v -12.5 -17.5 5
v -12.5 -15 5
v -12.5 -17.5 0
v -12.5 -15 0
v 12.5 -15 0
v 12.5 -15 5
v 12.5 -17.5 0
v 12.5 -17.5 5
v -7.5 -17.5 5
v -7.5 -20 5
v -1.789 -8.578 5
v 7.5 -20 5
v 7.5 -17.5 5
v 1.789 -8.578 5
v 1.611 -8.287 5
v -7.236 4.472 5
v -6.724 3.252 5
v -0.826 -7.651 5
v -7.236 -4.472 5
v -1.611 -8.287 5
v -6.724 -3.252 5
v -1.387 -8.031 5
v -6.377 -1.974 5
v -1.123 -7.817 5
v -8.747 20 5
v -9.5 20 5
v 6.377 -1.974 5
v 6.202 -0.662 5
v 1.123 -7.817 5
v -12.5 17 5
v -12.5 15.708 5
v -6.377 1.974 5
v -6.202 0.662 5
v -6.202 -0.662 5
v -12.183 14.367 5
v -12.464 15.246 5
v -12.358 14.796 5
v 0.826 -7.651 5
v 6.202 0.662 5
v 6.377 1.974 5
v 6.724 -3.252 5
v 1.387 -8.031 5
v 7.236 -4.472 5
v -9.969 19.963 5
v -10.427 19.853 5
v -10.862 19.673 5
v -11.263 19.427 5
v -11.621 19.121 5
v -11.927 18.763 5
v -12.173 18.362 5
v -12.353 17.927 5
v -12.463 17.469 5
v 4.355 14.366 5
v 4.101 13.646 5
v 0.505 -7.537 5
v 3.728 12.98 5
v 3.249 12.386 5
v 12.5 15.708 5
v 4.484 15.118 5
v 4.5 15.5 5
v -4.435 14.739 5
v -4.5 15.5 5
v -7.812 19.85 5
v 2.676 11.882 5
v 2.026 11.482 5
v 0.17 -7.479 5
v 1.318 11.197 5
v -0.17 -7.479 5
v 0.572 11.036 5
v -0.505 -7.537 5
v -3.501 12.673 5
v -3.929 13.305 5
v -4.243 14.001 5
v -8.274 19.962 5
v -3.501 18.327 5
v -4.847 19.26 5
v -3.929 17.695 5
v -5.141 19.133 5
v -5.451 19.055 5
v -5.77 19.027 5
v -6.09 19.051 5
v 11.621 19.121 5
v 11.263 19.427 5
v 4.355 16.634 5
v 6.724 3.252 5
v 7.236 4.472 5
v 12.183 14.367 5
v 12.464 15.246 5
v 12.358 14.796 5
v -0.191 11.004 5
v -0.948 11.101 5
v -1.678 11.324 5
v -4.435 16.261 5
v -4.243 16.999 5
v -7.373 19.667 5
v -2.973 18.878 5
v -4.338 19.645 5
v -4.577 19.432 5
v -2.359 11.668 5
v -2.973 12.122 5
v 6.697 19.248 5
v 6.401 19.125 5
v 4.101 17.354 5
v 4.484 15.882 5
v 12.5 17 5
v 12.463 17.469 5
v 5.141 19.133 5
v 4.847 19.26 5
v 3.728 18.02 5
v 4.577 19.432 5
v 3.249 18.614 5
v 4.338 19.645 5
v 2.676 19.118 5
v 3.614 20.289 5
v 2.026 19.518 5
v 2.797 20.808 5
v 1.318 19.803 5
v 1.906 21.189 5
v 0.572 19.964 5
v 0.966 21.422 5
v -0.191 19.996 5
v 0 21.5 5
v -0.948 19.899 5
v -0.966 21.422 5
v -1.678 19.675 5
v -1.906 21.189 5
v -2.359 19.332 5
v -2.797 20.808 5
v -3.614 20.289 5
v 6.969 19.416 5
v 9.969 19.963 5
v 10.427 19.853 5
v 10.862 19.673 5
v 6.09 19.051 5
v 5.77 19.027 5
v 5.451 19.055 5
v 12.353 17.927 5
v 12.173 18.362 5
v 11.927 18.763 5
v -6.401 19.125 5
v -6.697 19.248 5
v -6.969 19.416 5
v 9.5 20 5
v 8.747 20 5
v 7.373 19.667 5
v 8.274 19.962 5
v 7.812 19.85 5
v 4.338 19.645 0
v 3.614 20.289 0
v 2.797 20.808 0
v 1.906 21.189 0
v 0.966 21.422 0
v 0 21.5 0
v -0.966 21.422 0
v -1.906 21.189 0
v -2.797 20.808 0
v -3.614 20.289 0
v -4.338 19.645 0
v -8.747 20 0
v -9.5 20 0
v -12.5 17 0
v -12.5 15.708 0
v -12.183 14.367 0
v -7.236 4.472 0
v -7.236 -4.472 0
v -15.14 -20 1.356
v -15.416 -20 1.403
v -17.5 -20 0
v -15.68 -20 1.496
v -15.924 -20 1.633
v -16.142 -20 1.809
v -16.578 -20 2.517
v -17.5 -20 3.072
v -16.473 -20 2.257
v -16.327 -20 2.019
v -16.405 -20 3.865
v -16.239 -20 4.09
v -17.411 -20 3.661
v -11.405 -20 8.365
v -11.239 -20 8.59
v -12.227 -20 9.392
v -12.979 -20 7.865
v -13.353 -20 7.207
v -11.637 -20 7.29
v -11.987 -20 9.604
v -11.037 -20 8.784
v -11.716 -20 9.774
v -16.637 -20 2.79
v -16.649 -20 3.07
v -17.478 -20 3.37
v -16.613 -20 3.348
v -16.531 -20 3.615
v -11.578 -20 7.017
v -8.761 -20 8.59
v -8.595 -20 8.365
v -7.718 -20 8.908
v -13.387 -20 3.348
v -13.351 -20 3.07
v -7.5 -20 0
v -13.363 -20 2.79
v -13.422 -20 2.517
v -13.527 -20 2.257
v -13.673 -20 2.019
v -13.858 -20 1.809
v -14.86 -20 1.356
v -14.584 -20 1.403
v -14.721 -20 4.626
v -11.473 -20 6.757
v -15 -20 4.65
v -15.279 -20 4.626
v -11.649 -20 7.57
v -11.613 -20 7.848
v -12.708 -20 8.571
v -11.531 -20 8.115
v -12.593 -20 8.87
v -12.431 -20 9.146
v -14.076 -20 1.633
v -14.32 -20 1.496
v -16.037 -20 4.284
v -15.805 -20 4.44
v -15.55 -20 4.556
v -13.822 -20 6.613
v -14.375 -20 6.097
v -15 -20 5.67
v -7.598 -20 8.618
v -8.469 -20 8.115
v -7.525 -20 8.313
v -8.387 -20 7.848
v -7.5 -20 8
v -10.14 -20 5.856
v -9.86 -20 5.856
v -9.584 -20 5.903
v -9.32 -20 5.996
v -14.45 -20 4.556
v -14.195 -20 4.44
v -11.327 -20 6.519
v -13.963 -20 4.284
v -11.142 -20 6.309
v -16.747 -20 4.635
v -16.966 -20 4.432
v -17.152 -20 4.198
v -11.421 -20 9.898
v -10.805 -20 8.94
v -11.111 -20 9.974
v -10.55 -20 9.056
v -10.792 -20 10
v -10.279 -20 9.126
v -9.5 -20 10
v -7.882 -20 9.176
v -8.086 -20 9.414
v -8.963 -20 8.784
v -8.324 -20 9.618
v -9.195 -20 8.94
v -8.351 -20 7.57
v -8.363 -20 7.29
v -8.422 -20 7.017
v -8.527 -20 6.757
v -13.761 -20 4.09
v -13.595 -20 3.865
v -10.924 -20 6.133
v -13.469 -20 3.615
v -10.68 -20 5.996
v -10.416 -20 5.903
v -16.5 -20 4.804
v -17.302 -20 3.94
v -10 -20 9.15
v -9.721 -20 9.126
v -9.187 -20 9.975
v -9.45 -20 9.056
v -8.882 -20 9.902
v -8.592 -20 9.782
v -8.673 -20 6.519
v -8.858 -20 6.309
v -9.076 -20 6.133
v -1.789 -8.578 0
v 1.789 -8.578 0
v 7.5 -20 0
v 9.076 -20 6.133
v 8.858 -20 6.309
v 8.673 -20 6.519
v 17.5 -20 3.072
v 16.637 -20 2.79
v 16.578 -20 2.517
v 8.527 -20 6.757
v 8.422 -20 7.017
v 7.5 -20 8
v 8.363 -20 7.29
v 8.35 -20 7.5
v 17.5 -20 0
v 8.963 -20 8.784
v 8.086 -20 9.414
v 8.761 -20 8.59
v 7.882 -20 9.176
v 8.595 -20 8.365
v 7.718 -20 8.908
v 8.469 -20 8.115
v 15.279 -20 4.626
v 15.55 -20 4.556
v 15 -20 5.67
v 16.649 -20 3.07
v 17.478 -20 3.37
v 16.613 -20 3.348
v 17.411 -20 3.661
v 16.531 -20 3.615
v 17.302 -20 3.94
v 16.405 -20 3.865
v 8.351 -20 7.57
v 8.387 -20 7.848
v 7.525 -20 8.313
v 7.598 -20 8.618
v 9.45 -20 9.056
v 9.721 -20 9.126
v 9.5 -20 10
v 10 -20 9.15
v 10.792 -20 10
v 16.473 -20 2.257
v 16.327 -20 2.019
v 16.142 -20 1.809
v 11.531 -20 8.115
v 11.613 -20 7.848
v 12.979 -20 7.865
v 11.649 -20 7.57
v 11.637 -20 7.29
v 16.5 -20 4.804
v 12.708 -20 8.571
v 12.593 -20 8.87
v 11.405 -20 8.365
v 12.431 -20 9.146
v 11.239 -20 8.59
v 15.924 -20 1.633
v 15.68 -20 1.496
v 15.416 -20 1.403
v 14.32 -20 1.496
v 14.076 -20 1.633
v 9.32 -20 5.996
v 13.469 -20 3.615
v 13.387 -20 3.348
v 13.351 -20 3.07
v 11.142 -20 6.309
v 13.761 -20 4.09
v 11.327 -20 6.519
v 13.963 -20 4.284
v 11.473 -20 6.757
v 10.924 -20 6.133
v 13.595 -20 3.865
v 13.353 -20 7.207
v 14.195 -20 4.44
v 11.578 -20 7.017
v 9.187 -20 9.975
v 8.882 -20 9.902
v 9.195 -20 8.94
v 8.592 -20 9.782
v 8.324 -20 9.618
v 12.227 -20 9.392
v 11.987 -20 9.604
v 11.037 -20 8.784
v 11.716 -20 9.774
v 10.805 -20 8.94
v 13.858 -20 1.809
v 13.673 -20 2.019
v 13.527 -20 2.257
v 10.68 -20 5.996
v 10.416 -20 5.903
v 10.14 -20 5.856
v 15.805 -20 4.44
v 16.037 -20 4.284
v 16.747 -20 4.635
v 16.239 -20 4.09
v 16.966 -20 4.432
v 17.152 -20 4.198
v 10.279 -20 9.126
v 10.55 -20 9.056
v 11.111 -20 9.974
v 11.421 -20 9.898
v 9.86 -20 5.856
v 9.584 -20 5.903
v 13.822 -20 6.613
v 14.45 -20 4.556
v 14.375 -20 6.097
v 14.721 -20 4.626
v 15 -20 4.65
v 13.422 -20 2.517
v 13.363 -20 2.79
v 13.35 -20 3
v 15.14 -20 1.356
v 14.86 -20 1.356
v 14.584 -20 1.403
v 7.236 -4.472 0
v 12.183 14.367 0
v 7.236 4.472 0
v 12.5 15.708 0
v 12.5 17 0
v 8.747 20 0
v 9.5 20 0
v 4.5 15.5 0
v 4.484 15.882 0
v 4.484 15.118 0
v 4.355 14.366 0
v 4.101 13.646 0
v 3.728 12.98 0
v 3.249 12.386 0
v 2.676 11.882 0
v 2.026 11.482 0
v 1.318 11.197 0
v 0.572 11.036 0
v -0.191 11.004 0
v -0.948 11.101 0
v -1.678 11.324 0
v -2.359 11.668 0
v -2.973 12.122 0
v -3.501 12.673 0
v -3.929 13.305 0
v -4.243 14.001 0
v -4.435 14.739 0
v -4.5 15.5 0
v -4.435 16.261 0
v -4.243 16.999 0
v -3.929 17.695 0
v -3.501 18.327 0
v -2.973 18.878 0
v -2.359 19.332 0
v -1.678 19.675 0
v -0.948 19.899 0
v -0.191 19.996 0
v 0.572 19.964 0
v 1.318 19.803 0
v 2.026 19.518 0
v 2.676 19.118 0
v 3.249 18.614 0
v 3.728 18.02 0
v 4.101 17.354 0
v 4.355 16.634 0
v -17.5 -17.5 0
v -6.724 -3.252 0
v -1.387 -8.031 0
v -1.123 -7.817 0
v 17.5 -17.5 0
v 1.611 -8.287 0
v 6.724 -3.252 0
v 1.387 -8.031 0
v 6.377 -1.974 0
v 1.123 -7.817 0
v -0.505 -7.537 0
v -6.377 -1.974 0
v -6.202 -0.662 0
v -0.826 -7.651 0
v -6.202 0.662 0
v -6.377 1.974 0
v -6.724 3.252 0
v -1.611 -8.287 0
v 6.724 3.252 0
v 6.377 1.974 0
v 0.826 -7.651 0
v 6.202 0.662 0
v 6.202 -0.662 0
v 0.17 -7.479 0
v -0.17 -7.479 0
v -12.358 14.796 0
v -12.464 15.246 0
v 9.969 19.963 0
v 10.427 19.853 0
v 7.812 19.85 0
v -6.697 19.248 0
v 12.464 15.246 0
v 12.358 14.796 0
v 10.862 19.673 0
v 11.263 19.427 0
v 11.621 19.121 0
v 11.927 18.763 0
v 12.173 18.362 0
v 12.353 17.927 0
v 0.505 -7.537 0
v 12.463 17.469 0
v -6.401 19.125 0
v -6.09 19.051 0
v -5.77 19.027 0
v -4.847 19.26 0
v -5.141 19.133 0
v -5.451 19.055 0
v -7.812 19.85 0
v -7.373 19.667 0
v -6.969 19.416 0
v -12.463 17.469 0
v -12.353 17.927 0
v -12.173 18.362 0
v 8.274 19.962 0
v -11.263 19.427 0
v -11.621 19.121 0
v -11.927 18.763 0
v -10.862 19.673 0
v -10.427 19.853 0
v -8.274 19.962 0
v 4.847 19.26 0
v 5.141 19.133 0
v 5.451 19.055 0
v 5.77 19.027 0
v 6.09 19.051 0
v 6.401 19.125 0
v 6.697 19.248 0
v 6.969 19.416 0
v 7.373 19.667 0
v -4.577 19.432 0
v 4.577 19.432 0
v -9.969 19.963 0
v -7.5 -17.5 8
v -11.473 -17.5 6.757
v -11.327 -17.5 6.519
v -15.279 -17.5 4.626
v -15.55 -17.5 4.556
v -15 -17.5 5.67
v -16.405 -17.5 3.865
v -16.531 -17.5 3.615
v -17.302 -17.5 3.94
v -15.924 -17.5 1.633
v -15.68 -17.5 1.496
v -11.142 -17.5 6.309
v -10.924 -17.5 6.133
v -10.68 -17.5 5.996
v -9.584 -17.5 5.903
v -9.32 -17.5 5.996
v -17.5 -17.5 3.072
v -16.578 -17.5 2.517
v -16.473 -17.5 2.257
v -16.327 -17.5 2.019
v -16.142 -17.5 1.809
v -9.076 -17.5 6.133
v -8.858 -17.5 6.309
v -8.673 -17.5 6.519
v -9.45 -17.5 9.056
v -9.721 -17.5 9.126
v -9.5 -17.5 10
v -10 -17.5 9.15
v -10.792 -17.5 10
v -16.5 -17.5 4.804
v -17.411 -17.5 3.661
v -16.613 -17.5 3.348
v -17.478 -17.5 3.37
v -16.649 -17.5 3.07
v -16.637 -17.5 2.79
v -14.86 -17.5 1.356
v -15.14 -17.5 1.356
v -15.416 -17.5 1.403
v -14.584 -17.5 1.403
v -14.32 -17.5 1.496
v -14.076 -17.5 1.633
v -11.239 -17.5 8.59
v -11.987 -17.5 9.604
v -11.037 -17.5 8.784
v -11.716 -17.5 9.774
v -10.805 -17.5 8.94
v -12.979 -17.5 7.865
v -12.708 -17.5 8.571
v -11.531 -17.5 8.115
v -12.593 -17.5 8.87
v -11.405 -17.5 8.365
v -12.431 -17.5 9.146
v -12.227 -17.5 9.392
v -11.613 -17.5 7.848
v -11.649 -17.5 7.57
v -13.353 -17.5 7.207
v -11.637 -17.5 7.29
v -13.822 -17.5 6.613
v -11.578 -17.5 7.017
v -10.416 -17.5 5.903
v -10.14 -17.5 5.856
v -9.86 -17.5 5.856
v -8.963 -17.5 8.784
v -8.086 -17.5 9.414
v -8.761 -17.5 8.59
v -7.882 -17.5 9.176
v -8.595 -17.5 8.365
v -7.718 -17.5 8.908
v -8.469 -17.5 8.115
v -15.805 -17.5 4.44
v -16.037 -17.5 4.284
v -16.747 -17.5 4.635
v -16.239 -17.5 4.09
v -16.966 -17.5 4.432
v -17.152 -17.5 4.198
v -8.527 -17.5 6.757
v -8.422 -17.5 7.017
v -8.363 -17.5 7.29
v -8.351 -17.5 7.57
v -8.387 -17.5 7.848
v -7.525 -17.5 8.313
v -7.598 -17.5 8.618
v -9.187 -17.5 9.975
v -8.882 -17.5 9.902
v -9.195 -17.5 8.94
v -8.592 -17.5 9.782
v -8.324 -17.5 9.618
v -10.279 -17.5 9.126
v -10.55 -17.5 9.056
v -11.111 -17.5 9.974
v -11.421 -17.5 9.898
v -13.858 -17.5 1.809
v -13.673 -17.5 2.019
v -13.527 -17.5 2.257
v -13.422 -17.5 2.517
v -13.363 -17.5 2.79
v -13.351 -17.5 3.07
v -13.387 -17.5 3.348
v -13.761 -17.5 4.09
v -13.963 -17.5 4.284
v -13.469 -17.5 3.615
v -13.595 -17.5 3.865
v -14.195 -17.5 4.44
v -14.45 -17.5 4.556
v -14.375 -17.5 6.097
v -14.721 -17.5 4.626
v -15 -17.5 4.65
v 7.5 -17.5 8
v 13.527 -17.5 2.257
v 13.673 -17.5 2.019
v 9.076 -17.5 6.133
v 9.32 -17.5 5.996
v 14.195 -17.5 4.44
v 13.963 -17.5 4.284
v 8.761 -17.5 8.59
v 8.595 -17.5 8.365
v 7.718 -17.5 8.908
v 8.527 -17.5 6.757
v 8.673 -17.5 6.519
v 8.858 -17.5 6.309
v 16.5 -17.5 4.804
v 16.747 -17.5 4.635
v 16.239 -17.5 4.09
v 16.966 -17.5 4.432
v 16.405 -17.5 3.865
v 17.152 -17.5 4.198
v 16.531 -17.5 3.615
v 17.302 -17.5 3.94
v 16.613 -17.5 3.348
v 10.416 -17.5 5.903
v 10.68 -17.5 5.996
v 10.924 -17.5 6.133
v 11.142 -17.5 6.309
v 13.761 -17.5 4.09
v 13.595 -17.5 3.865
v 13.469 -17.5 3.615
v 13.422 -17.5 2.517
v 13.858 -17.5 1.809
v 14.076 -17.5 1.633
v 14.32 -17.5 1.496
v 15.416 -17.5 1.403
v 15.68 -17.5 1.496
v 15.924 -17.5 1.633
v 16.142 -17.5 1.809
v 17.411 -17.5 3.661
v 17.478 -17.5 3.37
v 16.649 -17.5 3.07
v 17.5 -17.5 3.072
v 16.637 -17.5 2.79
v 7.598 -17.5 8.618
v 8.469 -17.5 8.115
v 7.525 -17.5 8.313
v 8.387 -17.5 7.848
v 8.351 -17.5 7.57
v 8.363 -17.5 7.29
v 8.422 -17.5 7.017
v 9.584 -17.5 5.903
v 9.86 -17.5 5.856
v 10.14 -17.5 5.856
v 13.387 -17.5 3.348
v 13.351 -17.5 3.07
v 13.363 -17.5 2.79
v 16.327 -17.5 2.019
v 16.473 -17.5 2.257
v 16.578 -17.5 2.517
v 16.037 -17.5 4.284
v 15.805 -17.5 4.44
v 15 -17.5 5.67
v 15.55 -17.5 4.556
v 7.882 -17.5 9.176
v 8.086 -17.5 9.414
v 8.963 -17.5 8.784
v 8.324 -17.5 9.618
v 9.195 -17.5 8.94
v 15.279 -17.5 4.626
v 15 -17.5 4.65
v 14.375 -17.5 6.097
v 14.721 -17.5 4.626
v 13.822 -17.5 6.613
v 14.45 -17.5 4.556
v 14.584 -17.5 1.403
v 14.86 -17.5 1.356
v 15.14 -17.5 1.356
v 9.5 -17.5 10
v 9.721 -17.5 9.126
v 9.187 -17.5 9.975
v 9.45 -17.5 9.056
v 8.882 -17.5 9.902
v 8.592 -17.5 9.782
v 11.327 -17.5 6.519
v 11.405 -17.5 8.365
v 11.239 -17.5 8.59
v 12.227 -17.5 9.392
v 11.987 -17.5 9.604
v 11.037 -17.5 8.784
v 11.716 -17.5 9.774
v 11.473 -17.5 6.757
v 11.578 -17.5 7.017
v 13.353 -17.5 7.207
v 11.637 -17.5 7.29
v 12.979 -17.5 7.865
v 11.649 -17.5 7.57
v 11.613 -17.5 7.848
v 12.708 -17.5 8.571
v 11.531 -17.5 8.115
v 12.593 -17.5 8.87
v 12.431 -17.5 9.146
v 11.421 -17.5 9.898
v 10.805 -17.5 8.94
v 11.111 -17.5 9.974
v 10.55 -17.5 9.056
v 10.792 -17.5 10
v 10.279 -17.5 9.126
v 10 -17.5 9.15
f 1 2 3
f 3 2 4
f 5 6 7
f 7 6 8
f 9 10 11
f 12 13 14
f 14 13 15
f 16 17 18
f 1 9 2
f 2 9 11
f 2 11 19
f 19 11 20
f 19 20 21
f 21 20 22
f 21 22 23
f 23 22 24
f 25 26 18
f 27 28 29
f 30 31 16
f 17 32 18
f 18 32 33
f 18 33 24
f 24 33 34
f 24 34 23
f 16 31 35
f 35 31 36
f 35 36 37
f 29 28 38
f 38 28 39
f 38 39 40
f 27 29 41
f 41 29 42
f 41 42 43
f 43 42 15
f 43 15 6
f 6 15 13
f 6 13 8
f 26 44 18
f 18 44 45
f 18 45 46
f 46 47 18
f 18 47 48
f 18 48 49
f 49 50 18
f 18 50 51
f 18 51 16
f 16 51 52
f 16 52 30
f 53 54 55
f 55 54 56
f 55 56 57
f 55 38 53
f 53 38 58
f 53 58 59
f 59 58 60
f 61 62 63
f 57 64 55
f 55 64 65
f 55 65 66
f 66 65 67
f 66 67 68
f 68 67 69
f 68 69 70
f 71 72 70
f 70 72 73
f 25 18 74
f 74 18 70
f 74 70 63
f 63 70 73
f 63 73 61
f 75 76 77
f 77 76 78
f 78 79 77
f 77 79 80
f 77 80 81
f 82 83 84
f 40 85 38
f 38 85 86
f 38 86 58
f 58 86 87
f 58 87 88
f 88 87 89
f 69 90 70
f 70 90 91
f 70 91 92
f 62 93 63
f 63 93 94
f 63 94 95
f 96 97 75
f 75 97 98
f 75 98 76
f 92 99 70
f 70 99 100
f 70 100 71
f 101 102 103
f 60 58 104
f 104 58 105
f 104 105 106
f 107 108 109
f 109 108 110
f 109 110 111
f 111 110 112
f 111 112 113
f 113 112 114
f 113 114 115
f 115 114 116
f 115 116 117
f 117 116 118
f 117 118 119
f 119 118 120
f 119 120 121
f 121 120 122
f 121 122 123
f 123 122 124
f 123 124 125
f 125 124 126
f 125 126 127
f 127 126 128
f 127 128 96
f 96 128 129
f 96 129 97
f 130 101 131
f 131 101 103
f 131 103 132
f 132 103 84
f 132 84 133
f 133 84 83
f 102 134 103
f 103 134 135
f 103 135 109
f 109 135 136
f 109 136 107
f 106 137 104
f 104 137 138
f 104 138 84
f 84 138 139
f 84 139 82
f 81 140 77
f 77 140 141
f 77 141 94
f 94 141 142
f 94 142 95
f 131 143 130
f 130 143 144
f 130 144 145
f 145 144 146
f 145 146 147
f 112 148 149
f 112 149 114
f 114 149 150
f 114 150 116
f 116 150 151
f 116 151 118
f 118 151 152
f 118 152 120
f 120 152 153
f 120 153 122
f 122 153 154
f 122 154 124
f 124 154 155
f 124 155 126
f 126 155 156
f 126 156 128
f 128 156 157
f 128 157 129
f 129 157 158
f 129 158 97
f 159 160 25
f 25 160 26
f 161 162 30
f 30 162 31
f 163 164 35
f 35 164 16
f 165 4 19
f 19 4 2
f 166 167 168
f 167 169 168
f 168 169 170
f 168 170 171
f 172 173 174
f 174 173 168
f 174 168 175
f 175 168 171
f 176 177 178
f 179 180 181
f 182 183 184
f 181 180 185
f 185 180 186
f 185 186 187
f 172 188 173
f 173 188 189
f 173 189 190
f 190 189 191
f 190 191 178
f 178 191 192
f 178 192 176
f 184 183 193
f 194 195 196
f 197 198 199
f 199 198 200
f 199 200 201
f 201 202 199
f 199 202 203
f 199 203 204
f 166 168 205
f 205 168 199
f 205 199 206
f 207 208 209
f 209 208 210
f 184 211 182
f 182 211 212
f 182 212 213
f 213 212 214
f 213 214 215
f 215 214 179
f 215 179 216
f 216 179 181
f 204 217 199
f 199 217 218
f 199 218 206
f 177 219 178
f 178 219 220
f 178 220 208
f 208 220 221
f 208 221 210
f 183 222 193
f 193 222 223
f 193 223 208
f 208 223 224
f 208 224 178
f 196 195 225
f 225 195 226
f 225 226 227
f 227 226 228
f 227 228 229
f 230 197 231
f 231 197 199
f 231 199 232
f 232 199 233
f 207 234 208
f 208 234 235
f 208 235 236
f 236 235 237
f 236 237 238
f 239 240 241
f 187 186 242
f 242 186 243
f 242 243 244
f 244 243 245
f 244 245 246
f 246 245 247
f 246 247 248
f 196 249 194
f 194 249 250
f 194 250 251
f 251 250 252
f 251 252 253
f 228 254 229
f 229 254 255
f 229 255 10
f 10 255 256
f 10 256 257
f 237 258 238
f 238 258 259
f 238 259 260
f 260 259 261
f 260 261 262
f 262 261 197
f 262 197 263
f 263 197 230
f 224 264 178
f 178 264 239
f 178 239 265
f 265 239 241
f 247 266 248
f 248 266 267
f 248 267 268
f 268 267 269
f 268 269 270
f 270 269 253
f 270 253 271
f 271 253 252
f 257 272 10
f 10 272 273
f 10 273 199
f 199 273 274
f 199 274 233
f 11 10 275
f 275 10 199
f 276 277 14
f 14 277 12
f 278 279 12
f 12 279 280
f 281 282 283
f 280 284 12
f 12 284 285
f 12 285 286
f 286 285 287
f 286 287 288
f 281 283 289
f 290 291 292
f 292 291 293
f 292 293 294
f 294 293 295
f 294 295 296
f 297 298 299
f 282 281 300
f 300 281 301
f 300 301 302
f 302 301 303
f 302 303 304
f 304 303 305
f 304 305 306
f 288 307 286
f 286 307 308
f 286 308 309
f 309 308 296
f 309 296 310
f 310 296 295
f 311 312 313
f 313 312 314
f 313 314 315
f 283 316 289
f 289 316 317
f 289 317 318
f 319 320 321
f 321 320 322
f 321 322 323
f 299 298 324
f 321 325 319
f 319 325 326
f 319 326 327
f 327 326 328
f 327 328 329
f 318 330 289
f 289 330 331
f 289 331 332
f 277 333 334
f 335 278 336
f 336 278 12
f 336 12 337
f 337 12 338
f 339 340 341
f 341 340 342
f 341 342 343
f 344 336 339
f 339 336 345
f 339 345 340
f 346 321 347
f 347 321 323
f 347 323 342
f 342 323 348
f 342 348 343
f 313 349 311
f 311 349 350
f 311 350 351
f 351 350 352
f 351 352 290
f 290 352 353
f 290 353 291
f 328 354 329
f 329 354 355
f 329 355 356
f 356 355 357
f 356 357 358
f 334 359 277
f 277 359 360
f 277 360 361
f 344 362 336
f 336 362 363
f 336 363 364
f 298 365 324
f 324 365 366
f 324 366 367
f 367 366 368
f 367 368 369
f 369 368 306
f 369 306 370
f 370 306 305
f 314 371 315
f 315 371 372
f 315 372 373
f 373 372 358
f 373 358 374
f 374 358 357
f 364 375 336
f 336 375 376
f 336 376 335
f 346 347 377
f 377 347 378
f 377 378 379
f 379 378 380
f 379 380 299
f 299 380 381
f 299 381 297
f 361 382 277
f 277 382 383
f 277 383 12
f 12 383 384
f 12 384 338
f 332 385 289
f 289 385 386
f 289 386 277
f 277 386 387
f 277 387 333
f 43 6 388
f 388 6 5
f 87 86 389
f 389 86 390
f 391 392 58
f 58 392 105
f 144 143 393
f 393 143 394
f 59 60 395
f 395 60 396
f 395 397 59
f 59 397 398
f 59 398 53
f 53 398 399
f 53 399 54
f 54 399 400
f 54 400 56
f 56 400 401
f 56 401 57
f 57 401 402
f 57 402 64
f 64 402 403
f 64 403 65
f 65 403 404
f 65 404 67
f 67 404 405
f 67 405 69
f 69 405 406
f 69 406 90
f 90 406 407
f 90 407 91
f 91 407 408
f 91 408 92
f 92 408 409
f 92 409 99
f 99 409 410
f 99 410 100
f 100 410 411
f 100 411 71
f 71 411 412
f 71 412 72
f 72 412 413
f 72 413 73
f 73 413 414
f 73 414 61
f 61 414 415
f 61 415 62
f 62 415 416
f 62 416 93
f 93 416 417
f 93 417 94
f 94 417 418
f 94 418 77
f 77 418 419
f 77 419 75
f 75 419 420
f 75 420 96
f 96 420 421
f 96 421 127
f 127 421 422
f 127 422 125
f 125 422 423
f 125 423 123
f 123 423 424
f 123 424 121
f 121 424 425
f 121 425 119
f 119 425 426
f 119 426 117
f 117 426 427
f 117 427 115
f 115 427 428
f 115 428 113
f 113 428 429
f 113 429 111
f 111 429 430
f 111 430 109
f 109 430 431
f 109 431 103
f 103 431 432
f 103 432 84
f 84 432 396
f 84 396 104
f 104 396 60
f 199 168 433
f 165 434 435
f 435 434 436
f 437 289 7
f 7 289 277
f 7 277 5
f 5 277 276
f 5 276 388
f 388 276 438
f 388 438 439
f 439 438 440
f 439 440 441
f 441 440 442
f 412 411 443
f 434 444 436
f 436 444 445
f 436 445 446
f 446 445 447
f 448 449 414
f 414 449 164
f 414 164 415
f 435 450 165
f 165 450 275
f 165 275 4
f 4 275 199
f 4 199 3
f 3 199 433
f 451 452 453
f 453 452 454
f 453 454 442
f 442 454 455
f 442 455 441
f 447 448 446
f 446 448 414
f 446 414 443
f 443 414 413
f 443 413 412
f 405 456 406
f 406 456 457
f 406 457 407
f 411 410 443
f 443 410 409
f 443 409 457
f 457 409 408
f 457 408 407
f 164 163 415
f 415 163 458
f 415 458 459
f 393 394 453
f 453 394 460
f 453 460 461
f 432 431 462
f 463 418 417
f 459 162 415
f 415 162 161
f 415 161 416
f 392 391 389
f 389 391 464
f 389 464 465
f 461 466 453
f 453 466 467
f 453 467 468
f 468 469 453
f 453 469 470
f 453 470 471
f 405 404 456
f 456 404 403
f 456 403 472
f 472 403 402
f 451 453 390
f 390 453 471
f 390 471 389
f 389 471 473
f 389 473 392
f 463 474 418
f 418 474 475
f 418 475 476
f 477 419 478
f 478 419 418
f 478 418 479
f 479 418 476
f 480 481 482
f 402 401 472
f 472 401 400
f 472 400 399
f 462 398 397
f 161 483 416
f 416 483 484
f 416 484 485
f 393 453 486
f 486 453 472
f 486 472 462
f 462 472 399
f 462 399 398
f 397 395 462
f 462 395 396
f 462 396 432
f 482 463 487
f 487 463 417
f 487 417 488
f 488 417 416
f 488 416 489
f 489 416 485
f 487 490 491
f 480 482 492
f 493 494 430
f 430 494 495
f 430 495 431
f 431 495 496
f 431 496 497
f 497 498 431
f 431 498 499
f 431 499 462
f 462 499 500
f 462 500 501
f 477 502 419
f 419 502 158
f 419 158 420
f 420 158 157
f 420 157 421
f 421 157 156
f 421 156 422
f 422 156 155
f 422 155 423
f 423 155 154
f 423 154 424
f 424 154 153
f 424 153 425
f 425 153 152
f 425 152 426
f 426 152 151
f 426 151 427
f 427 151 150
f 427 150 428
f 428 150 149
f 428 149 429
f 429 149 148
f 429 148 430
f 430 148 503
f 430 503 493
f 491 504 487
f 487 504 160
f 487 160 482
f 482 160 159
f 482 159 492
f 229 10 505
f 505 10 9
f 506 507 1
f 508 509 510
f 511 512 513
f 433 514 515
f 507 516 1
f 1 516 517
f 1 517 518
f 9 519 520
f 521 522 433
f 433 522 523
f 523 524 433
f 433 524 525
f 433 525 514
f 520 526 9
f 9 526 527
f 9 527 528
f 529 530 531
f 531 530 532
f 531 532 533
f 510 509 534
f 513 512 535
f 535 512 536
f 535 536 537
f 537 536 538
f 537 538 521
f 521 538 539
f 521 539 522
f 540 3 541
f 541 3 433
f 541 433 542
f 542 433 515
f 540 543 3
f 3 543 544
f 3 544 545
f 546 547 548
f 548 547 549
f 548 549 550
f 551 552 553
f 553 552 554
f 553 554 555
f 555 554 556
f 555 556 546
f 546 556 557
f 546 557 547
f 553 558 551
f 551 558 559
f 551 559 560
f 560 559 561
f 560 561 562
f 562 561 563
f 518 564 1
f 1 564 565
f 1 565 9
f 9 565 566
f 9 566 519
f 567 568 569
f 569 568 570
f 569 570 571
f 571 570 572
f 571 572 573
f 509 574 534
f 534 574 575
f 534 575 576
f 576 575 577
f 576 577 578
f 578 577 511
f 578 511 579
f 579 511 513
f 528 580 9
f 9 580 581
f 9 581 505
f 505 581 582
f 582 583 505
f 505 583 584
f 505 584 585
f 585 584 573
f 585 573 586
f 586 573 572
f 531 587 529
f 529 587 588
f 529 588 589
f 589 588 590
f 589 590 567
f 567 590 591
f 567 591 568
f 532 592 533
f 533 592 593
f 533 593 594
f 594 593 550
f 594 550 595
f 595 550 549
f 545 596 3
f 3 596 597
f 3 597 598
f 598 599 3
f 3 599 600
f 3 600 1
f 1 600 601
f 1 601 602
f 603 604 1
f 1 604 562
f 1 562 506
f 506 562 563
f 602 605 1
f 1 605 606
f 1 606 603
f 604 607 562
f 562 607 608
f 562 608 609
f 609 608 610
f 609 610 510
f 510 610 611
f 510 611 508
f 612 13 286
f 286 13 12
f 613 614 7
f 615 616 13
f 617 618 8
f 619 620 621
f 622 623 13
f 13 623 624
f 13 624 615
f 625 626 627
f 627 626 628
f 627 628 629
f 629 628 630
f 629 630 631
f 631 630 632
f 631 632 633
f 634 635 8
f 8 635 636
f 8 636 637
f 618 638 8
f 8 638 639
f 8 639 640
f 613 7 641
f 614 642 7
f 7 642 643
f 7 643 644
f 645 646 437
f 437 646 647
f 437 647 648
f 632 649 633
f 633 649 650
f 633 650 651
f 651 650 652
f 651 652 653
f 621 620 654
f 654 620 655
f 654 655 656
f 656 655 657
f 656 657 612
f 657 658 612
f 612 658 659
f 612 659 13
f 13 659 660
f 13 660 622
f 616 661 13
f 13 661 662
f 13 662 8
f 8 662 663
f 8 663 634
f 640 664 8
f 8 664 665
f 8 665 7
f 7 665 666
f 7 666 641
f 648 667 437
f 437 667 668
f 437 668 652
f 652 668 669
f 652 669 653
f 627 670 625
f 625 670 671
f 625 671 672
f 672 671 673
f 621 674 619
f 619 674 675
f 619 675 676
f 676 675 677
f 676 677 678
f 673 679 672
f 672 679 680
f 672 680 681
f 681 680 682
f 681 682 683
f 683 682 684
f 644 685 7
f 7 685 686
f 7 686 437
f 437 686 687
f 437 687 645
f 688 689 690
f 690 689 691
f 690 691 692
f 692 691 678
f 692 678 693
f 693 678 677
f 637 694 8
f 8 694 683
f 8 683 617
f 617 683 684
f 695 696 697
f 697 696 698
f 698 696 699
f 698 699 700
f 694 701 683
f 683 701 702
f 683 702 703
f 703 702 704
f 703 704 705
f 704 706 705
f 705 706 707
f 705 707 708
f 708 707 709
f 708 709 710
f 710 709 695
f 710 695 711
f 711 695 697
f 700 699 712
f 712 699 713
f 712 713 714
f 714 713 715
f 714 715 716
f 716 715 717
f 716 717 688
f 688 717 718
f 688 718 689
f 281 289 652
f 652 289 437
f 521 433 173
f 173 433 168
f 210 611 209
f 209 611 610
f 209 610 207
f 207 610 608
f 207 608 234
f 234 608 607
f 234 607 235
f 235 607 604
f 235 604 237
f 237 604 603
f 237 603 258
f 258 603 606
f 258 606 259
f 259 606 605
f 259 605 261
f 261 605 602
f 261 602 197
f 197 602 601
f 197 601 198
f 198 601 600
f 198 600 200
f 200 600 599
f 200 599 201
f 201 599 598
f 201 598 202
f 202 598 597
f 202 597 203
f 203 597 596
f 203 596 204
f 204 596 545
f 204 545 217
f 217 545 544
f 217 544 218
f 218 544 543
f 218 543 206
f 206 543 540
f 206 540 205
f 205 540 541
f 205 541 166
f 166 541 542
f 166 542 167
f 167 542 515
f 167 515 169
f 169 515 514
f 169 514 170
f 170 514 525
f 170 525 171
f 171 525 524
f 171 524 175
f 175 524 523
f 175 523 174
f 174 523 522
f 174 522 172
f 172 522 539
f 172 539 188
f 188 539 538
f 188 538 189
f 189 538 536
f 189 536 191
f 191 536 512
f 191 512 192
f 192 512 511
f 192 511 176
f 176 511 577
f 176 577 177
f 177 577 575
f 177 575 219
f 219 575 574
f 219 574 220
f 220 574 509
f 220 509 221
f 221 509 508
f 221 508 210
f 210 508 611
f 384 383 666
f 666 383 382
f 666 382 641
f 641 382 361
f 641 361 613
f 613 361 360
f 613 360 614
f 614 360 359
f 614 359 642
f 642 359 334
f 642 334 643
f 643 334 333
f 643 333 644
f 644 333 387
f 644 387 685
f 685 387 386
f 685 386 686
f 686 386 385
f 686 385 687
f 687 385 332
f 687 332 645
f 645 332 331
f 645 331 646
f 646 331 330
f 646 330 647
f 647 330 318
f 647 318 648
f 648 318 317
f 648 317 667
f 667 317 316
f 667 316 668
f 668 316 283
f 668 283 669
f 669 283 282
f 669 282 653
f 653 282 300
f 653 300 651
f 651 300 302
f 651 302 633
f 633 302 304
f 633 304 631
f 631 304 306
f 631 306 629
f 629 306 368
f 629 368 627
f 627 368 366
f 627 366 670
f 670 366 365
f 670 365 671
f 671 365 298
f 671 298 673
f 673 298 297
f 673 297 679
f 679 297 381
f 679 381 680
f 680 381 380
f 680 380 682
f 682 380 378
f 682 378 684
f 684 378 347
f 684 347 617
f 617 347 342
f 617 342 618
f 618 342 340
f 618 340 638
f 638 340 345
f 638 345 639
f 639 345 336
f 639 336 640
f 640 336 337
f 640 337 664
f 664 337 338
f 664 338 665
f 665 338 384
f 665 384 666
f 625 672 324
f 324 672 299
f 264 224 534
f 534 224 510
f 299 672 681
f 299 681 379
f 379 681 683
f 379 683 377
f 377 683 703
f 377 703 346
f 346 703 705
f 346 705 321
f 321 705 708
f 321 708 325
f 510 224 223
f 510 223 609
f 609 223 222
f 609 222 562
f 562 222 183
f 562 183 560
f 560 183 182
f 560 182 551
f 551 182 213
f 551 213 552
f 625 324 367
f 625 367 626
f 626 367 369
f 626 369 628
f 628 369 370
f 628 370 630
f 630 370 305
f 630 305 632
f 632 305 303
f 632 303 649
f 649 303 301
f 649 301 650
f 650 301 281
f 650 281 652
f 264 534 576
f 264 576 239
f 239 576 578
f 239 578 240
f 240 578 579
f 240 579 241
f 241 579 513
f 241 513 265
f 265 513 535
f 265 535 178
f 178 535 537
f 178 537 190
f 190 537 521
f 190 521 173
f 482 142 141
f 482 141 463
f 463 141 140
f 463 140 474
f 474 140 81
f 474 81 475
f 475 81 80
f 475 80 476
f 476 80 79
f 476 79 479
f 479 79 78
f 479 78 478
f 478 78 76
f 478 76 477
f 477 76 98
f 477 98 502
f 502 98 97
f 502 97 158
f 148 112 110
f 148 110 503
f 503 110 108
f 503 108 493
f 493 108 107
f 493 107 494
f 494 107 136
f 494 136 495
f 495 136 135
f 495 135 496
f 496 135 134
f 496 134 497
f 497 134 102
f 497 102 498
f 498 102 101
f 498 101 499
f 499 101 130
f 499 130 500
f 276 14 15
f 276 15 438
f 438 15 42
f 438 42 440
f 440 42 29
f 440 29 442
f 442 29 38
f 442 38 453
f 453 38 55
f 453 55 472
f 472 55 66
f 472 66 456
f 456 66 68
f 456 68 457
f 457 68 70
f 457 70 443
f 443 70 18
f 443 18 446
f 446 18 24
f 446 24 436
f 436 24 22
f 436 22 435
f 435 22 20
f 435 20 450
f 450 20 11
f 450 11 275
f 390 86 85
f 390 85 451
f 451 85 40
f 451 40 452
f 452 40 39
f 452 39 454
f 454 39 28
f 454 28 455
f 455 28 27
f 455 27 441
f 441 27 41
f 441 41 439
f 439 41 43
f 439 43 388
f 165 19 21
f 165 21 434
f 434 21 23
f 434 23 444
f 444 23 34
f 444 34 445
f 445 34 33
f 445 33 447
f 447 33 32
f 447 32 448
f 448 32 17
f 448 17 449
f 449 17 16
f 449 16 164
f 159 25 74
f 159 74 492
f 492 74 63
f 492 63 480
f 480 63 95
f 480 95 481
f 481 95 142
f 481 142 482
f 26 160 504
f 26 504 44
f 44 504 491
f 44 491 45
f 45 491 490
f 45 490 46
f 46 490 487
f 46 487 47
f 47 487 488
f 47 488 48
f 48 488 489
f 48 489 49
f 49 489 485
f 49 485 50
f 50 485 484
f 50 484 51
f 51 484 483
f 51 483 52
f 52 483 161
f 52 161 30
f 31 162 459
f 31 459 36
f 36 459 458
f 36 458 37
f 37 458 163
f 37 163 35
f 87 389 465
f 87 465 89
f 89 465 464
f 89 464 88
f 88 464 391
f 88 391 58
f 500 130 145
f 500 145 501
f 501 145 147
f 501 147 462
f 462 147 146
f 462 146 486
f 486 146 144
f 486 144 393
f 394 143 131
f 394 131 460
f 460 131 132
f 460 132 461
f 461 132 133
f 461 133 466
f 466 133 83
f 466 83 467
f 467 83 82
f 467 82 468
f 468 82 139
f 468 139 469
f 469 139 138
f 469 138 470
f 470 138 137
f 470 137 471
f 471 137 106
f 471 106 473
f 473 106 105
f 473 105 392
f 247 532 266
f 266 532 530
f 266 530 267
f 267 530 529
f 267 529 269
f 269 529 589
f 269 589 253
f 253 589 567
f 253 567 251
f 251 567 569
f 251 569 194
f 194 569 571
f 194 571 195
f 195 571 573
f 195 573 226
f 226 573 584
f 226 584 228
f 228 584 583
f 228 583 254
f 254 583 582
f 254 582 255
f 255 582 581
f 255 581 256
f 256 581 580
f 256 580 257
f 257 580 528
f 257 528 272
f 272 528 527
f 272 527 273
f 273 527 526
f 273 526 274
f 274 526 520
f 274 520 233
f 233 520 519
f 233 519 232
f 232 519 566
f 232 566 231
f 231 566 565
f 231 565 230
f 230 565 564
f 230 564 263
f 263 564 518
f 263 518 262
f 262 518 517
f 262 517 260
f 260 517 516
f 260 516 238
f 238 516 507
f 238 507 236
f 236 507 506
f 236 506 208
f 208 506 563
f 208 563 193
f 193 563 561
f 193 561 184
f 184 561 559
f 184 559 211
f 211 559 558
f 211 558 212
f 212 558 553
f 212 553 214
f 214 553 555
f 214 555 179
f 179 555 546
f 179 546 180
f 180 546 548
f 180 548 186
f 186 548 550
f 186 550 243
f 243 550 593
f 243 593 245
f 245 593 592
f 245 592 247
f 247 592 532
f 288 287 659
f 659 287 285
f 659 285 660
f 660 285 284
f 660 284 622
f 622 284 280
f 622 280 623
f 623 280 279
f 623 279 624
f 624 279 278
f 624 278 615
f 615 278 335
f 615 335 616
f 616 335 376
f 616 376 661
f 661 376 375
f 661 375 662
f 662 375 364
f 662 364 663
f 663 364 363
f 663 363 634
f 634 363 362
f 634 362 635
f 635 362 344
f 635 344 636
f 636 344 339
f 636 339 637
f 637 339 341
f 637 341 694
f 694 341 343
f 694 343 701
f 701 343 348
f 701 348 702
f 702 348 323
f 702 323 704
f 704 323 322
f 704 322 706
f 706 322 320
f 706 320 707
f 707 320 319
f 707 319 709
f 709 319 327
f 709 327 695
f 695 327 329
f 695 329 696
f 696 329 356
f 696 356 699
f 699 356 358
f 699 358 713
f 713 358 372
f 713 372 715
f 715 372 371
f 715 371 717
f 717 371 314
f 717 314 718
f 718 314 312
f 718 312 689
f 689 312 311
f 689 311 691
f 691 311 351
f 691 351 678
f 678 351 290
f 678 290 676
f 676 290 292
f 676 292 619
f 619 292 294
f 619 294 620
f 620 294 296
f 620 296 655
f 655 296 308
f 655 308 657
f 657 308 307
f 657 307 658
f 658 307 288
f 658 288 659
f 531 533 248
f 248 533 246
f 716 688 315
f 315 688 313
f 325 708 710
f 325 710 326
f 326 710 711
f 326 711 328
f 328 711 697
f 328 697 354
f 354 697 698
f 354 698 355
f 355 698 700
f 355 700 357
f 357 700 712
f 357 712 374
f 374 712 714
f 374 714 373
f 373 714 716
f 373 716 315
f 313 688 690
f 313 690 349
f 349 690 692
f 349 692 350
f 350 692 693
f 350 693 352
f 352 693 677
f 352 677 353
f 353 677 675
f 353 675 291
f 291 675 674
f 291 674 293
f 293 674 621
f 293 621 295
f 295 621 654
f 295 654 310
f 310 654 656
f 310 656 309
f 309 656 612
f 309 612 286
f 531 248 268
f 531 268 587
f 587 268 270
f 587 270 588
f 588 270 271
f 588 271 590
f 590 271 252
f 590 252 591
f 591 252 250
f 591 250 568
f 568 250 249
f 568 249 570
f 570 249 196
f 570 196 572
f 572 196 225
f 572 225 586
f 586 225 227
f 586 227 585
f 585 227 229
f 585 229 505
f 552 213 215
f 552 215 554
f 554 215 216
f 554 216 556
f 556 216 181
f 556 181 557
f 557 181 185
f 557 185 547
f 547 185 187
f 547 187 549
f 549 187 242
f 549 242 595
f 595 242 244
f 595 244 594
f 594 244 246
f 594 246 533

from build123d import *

# Parameters (mm, degrees)
SKETCH1_R           = 4.5
BOSS_EXTRUDE2_DEPTH = 5
SKETCH2_W           = 5
SKETCH2_H           = 2.5
BOSS_EXTRUDE3_DEPTH = 10
SKETCH3_W           = 10
SKETCH3_H           = 2.5
BOSS_EXTRUDE4_DEPTH = 5
SKETCH4_W           = 10
SKETCH4_H           = 2.5
BOSS_EXTRUDE5_DEPTH = 5
SKETCH5_R           = 1.65
CUT_EXTRUDE1_DEPTH  = 5
CHAMFER1_SIZE       = 5.773502692
CHAMFER1_SIZE_2     = 10
FILLET1_R           = 2
FILLET2_R           = 5
FILLET3_R           = 2
FILLET4_R           = 2
FILLET5_R           = 10
FILLET6_R           = 3
SKETCH6_R           = 1.65
SKETCH6_W           = 36.073404507
SKETCH6_H           = 7.954648173
CUT_EXTRUDE2_DEPTH  = 5
FILLET10_R          = 2


with BuildPart() as part:
    # Sketch1 → Boss-Extrude2 (new body)
    with BuildSketch(Plane.XY):
        with BuildLine():
            Line((-7.5, 20), (-5.870329309, 16.740658618))
            ThreePointArc((-5.870329309, 16.740658618), (0, 21.5), (5.870329309, 16.740658618))
            Line((5.870329309, 16.740658618), (7.5, 20))
            Line((7.5, 20), (12.5, 20))
            Line((12.5, 20), (12.5, 15))
            Line((12.5, 15), (5, 0))
            Line((5, 0), (12.5, -15))
            Line((12.5, -15), (12.5, -20))
            Line((12.5, -20), (7.5, -20))
            Line((7.5, -20), (0, -5))
            Line((0, -5), (-7.5, -20))
            Line((-7.5, -20), (-12.5, -20))
            Line((-12.5, -20), (-12.5, -15))
            Line((-12.5, -15), (-5, 0))
            Line((-5, 0), (-12.5, 15))
            Line((-12.5, 15), (-12.5, 20))
            Line((-12.5, 20), (-7.5, 20))
        make_face()
        with Locations((0, 15.5)):
            Circle(SKETCH1_R, mode=Mode.SUBTRACT)
    extrude(amount=BOSS_EXTRUDE2_DEPTH)

    # Sketch2 → Boss-Extrude3 (add)
    with BuildSketch(Plane.XY.offset(5)):
        with Locations((-10, -18.75)):
            Rectangle(SKETCH2_W, SKETCH2_H)
        with Locations((10, -18.75)):
            Rectangle(SKETCH2_W, SKETCH2_H)
    extrude(amount=BOSS_EXTRUDE3_DEPTH)

    # Sketch3 → Boss-Extrude4 (add)
    with BuildSketch(Plane(origin=(12.5, 0, 0), x_dir=(0, 0, -1), z_dir=(1, 0, 0))):
        with Locations((-5, -18.75)):
            Rectangle(SKETCH3_W, SKETCH3_H)
    extrude(amount=BOSS_EXTRUDE4_DEPTH)

    # Sketch4 → Boss-Extrude5 (add)
    with BuildSketch(Plane.ZY.offset(12.5)):
        with Locations((5, -18.75)):
            Rectangle(SKETCH4_W, SKETCH4_H)
    extrude(amount=BOSS_EXTRUDE5_DEPTH)

    # Sketch5 → Cut-Extrude1 (cut)
    with BuildSketch(Plane(origin=(0, -17.5, 0), x_dir=(1, 0, 0), z_dir=(0, 1, 0))):
        with Locations(Location((-15, -3, 0), (0, 0, 270))):
            Circle(SKETCH5_R)
        with Locations(Location((-10, -12, 0), (0, 0, 270))):
            Circle(SKETCH5_R)
        with Locations(Location((10, -12, 0), (0, 0, 270))):
            Circle(SKETCH5_R)
        with Locations(Location((15, -3, 0), (0, 0, 270))):
            Circle(SKETCH5_R)
    extrude(amount=-CUT_EXTRUDE1_DEPTH, mode=Mode.SUBTRACT)

    # Chamfer1
    # the kernel refuses this chamfer: 10, 5.773502692 mm, written as the material it takes off along each edge
    with BuildSketch(Plane(origin=(17.5, -45.870857546, 10), x_dir=(0.05789386240267053, 0, -0.9983227437537926), z_dir=(0, 1, 0))) as chamfer1_piece_1_section:
        Polygon((CHAMFER1_SIZE * 0.998322743736, CHAMFER1_SIZE * 0.0578938624016), (-CHAMFER1_SIZE_2 * 0.0578938624027, CHAMFER1_SIZE_2 * 0.998322743754), (0, 0), align=None)
    chamfer1_piece_1 = extrude(amount=54.241715093, mode=Mode.PRIVATE)
    chamfer1_piece_1 = split(chamfer1_piece_1, bisect_by=Plane(origin=(12.5, -18.75, 7.760588383), z_dir=(1, 0, 0)), keep=Keep.TOP, mode=Mode.PRIVATE)
    add(chamfer1_piece_1, mode=Mode.SUBTRACT)
    with BuildSketch(Plane(origin=(-17.5, -45.870857546, 10), x_dir=(-0.05789386240267053, 0, -0.9983227437537926), z_dir=(0, 1, 0))) as chamfer1_piece_2_section:
        Polygon((CHAMFER1_SIZE * 0.998322743736, -CHAMFER1_SIZE * 0.0578938624016), (-CHAMFER1_SIZE_2 * 0.0578938624027, -CHAMFER1_SIZE_2 * 0.998322743754), (0, 0), align=None)
    chamfer1_piece_2 = extrude(amount=54.241715093, mode=Mode.PRIVATE)
    chamfer1_piece_2 = split(chamfer1_piece_2, bisect_by=Plane(origin=(-12.5, -18.75, 7.760588383), z_dir=(-1, 0, 0)), keep=Keep.TOP, mode=Mode.PRIVATE)
    add(chamfer1_piece_2, mode=Mode.SUBTRACT)

    # Fillet1
    fillet1_edges = [part.edges().sort_by_distance(p)[0] for p in [
        (12.5, -18.75, 15),
        (7.5, -18.75, 15),
        (-7.5, -18.75, 15),
        (-12.5, -18.75, 15),
    ]]
    fillet(fillet1_edges, radius=FILLET1_R)

    # Fillet2
    fillet2_edges = [part.edges().sort_by_distance(p)[0] for p in [
        (12.5, -18.75, 7.113248654),
        (-12.5, -18.75, 7.113248654),
    ]]
    fillet(fillet2_edges, radius=FILLET2_R)

    # Fillet3
    fillet3_edges = [part.edges().sort_by_distance(p)[0] for p in [
        (17.5, -18.75, 4.226497308),
        (-17.5, -18.75, 4.226497308),
    ]]
    fillet(fillet3_edges, radius=FILLET3_R)

    # Fillet4
    # the kernel refuses this fillet: 2 mm, written as the material it adds along each edge
    with BuildSketch(Plane(origin=(-5.870329309, 16.740658618, 0), x_dir=(-0.4472135954999439, 0.894427190999923, 0), z_dir=(0, 0, 1))) as fillet4_piece_1:
        with BuildLine():
            CenterArc((3.795112325, -1.99428722), FILLET4_R, 94.331614503, 105.404093699)
            Line((1.912591774, -2.669651103), (1.874941363, -2.683158381))
            ThreePointArc((1.874941363, -2.683158381), (1.109985705, -1.224719073), (-0.024899799, -0.031304952))
            Line((-0.024899799, -0.031304952), (0, 0.04))
            ThreePointArc((0, 0.04), (1.822027223, 0.04), (3.641033289, 0.039885744))
            Line((3.641033289, 0.039885744), (3.644054446, 0))
        make_face()
    extrude(amount=5)
    with BuildSketch(Plane(origin=(5.870329309, 16.740658618, 0), x_dir=(-0.46663943526551355, 0.8844476454008358, 0), z_dir=(0, 0, 1))) as fillet4_piece_2:
        with BuildLine():
            CenterArc((3.831402307, -1.923646391), FILLET4_R, 105.88286544, 105.404093699)
            Line((2.1222482, -2.962295628), (2.088065118, -2.983068612))
            ThreePointArc((2.088065118, -2.983068612), (1.02860762, -1.504443275), (-0.03251648, -0.023295461))
            Line((-0.03251648, -0.023295461), (0.010946864, 0.038472928))
            ThreePointArc((0.010946864, 0.038472928), (1.64202956, -0.189060828), (3.273112257, 0.038472928))
            Line((3.273112257, 0.038472928), (3.284059121, 0))
        make_face()
    extrude(amount=5)
    with BuildSketch(Plane(origin=(0, -5, 0), x_dir=(-0.4472135954999584, -0.8944271909999157, 0), z_dir=(0, 0, 1))) as fillet4_piece_3:
        with BuildLine():
            CenterArc((FILLET4_R * 2, FILLET4_R), FILLET4_R, 143.130102354, 126.869897646)
            Line((FILLET4_R * 1.2, FILLET4_R * 1.6), (FILLET4_R * 1.184, FILLET4_R * 1.612))
            Line((FILLET4_R * 1.184, FILLET4_R * 1.612), (-FILLET4_R * 0.016, FILLET4_R * 0.012))
            Line((-FILLET4_R * 0.016, FILLET4_R * 0.012), (0, -FILLET4_R * 0.02))
            Line((0, -FILLET4_R * 0.02), (FILLET4_R * 2, -FILLET4_R * 0.02))
            Line((FILLET4_R * 2, -FILLET4_R * 0.02), (FILLET4_R * 2, 0))
        make_face()
    extrude(amount=5)

    # Fillet5
    fillet5_edges = [part.edges().sort_by_distance(p)[0] for p in [
        (5, 0, 2.5),
        (-5, 0, 2.5),
    ]]
    fillet(fillet5_edges, radius=FILLET5_R)

    # Fillet6
    fillet6_edges = [part.edges().sort_by_distance(p)[0] for p in [
        (7.5, 20, 2.5),
        (12.5, 20, 2.5),
        (12.5, 15, 2.5),
        (-12.5, 15, 2.5),
        (-12.5, 20, 2.5),
        (-7.5, 20, 2.5),
    ]]
    fillet(fillet6_edges, radius=FILLET6_R)

    # Sketch6 → Cut-Extrude2 (cut)
    with BuildSketch(Plane(origin=(0, -17.5, 0), x_dir=(1, 0, 0), z_dir=(0, 1, 0))):
        with Locations(Location((-10, -7.5, 0), (0, 0, 270))):
            Circle(SKETCH6_R)
        with Locations(Location((10, -7.5, 0), (0, 0, 270))):
            Circle(SKETCH6_R)
        with Locations((1.341190681, -13.977324087)):
            Rectangle(SKETCH6_W, SKETCH6_H)
    extrude(amount=-CUT_EXTRUDE2_DEPTH, mode=Mode.SUBTRACT)

    # Fillet10
    fillet10_edges = [part.edges().sort_by_distance(p)[0] for p in [
        (12.5, -18.75, 10),
        (-12.5, -18.75, 10),
        (7.5, -18.75, 10),
        (-7.5, -18.75, 10),
    ]]
    fillet(fillet10_edges, radius=FILLET10_R)


solid = part.part
